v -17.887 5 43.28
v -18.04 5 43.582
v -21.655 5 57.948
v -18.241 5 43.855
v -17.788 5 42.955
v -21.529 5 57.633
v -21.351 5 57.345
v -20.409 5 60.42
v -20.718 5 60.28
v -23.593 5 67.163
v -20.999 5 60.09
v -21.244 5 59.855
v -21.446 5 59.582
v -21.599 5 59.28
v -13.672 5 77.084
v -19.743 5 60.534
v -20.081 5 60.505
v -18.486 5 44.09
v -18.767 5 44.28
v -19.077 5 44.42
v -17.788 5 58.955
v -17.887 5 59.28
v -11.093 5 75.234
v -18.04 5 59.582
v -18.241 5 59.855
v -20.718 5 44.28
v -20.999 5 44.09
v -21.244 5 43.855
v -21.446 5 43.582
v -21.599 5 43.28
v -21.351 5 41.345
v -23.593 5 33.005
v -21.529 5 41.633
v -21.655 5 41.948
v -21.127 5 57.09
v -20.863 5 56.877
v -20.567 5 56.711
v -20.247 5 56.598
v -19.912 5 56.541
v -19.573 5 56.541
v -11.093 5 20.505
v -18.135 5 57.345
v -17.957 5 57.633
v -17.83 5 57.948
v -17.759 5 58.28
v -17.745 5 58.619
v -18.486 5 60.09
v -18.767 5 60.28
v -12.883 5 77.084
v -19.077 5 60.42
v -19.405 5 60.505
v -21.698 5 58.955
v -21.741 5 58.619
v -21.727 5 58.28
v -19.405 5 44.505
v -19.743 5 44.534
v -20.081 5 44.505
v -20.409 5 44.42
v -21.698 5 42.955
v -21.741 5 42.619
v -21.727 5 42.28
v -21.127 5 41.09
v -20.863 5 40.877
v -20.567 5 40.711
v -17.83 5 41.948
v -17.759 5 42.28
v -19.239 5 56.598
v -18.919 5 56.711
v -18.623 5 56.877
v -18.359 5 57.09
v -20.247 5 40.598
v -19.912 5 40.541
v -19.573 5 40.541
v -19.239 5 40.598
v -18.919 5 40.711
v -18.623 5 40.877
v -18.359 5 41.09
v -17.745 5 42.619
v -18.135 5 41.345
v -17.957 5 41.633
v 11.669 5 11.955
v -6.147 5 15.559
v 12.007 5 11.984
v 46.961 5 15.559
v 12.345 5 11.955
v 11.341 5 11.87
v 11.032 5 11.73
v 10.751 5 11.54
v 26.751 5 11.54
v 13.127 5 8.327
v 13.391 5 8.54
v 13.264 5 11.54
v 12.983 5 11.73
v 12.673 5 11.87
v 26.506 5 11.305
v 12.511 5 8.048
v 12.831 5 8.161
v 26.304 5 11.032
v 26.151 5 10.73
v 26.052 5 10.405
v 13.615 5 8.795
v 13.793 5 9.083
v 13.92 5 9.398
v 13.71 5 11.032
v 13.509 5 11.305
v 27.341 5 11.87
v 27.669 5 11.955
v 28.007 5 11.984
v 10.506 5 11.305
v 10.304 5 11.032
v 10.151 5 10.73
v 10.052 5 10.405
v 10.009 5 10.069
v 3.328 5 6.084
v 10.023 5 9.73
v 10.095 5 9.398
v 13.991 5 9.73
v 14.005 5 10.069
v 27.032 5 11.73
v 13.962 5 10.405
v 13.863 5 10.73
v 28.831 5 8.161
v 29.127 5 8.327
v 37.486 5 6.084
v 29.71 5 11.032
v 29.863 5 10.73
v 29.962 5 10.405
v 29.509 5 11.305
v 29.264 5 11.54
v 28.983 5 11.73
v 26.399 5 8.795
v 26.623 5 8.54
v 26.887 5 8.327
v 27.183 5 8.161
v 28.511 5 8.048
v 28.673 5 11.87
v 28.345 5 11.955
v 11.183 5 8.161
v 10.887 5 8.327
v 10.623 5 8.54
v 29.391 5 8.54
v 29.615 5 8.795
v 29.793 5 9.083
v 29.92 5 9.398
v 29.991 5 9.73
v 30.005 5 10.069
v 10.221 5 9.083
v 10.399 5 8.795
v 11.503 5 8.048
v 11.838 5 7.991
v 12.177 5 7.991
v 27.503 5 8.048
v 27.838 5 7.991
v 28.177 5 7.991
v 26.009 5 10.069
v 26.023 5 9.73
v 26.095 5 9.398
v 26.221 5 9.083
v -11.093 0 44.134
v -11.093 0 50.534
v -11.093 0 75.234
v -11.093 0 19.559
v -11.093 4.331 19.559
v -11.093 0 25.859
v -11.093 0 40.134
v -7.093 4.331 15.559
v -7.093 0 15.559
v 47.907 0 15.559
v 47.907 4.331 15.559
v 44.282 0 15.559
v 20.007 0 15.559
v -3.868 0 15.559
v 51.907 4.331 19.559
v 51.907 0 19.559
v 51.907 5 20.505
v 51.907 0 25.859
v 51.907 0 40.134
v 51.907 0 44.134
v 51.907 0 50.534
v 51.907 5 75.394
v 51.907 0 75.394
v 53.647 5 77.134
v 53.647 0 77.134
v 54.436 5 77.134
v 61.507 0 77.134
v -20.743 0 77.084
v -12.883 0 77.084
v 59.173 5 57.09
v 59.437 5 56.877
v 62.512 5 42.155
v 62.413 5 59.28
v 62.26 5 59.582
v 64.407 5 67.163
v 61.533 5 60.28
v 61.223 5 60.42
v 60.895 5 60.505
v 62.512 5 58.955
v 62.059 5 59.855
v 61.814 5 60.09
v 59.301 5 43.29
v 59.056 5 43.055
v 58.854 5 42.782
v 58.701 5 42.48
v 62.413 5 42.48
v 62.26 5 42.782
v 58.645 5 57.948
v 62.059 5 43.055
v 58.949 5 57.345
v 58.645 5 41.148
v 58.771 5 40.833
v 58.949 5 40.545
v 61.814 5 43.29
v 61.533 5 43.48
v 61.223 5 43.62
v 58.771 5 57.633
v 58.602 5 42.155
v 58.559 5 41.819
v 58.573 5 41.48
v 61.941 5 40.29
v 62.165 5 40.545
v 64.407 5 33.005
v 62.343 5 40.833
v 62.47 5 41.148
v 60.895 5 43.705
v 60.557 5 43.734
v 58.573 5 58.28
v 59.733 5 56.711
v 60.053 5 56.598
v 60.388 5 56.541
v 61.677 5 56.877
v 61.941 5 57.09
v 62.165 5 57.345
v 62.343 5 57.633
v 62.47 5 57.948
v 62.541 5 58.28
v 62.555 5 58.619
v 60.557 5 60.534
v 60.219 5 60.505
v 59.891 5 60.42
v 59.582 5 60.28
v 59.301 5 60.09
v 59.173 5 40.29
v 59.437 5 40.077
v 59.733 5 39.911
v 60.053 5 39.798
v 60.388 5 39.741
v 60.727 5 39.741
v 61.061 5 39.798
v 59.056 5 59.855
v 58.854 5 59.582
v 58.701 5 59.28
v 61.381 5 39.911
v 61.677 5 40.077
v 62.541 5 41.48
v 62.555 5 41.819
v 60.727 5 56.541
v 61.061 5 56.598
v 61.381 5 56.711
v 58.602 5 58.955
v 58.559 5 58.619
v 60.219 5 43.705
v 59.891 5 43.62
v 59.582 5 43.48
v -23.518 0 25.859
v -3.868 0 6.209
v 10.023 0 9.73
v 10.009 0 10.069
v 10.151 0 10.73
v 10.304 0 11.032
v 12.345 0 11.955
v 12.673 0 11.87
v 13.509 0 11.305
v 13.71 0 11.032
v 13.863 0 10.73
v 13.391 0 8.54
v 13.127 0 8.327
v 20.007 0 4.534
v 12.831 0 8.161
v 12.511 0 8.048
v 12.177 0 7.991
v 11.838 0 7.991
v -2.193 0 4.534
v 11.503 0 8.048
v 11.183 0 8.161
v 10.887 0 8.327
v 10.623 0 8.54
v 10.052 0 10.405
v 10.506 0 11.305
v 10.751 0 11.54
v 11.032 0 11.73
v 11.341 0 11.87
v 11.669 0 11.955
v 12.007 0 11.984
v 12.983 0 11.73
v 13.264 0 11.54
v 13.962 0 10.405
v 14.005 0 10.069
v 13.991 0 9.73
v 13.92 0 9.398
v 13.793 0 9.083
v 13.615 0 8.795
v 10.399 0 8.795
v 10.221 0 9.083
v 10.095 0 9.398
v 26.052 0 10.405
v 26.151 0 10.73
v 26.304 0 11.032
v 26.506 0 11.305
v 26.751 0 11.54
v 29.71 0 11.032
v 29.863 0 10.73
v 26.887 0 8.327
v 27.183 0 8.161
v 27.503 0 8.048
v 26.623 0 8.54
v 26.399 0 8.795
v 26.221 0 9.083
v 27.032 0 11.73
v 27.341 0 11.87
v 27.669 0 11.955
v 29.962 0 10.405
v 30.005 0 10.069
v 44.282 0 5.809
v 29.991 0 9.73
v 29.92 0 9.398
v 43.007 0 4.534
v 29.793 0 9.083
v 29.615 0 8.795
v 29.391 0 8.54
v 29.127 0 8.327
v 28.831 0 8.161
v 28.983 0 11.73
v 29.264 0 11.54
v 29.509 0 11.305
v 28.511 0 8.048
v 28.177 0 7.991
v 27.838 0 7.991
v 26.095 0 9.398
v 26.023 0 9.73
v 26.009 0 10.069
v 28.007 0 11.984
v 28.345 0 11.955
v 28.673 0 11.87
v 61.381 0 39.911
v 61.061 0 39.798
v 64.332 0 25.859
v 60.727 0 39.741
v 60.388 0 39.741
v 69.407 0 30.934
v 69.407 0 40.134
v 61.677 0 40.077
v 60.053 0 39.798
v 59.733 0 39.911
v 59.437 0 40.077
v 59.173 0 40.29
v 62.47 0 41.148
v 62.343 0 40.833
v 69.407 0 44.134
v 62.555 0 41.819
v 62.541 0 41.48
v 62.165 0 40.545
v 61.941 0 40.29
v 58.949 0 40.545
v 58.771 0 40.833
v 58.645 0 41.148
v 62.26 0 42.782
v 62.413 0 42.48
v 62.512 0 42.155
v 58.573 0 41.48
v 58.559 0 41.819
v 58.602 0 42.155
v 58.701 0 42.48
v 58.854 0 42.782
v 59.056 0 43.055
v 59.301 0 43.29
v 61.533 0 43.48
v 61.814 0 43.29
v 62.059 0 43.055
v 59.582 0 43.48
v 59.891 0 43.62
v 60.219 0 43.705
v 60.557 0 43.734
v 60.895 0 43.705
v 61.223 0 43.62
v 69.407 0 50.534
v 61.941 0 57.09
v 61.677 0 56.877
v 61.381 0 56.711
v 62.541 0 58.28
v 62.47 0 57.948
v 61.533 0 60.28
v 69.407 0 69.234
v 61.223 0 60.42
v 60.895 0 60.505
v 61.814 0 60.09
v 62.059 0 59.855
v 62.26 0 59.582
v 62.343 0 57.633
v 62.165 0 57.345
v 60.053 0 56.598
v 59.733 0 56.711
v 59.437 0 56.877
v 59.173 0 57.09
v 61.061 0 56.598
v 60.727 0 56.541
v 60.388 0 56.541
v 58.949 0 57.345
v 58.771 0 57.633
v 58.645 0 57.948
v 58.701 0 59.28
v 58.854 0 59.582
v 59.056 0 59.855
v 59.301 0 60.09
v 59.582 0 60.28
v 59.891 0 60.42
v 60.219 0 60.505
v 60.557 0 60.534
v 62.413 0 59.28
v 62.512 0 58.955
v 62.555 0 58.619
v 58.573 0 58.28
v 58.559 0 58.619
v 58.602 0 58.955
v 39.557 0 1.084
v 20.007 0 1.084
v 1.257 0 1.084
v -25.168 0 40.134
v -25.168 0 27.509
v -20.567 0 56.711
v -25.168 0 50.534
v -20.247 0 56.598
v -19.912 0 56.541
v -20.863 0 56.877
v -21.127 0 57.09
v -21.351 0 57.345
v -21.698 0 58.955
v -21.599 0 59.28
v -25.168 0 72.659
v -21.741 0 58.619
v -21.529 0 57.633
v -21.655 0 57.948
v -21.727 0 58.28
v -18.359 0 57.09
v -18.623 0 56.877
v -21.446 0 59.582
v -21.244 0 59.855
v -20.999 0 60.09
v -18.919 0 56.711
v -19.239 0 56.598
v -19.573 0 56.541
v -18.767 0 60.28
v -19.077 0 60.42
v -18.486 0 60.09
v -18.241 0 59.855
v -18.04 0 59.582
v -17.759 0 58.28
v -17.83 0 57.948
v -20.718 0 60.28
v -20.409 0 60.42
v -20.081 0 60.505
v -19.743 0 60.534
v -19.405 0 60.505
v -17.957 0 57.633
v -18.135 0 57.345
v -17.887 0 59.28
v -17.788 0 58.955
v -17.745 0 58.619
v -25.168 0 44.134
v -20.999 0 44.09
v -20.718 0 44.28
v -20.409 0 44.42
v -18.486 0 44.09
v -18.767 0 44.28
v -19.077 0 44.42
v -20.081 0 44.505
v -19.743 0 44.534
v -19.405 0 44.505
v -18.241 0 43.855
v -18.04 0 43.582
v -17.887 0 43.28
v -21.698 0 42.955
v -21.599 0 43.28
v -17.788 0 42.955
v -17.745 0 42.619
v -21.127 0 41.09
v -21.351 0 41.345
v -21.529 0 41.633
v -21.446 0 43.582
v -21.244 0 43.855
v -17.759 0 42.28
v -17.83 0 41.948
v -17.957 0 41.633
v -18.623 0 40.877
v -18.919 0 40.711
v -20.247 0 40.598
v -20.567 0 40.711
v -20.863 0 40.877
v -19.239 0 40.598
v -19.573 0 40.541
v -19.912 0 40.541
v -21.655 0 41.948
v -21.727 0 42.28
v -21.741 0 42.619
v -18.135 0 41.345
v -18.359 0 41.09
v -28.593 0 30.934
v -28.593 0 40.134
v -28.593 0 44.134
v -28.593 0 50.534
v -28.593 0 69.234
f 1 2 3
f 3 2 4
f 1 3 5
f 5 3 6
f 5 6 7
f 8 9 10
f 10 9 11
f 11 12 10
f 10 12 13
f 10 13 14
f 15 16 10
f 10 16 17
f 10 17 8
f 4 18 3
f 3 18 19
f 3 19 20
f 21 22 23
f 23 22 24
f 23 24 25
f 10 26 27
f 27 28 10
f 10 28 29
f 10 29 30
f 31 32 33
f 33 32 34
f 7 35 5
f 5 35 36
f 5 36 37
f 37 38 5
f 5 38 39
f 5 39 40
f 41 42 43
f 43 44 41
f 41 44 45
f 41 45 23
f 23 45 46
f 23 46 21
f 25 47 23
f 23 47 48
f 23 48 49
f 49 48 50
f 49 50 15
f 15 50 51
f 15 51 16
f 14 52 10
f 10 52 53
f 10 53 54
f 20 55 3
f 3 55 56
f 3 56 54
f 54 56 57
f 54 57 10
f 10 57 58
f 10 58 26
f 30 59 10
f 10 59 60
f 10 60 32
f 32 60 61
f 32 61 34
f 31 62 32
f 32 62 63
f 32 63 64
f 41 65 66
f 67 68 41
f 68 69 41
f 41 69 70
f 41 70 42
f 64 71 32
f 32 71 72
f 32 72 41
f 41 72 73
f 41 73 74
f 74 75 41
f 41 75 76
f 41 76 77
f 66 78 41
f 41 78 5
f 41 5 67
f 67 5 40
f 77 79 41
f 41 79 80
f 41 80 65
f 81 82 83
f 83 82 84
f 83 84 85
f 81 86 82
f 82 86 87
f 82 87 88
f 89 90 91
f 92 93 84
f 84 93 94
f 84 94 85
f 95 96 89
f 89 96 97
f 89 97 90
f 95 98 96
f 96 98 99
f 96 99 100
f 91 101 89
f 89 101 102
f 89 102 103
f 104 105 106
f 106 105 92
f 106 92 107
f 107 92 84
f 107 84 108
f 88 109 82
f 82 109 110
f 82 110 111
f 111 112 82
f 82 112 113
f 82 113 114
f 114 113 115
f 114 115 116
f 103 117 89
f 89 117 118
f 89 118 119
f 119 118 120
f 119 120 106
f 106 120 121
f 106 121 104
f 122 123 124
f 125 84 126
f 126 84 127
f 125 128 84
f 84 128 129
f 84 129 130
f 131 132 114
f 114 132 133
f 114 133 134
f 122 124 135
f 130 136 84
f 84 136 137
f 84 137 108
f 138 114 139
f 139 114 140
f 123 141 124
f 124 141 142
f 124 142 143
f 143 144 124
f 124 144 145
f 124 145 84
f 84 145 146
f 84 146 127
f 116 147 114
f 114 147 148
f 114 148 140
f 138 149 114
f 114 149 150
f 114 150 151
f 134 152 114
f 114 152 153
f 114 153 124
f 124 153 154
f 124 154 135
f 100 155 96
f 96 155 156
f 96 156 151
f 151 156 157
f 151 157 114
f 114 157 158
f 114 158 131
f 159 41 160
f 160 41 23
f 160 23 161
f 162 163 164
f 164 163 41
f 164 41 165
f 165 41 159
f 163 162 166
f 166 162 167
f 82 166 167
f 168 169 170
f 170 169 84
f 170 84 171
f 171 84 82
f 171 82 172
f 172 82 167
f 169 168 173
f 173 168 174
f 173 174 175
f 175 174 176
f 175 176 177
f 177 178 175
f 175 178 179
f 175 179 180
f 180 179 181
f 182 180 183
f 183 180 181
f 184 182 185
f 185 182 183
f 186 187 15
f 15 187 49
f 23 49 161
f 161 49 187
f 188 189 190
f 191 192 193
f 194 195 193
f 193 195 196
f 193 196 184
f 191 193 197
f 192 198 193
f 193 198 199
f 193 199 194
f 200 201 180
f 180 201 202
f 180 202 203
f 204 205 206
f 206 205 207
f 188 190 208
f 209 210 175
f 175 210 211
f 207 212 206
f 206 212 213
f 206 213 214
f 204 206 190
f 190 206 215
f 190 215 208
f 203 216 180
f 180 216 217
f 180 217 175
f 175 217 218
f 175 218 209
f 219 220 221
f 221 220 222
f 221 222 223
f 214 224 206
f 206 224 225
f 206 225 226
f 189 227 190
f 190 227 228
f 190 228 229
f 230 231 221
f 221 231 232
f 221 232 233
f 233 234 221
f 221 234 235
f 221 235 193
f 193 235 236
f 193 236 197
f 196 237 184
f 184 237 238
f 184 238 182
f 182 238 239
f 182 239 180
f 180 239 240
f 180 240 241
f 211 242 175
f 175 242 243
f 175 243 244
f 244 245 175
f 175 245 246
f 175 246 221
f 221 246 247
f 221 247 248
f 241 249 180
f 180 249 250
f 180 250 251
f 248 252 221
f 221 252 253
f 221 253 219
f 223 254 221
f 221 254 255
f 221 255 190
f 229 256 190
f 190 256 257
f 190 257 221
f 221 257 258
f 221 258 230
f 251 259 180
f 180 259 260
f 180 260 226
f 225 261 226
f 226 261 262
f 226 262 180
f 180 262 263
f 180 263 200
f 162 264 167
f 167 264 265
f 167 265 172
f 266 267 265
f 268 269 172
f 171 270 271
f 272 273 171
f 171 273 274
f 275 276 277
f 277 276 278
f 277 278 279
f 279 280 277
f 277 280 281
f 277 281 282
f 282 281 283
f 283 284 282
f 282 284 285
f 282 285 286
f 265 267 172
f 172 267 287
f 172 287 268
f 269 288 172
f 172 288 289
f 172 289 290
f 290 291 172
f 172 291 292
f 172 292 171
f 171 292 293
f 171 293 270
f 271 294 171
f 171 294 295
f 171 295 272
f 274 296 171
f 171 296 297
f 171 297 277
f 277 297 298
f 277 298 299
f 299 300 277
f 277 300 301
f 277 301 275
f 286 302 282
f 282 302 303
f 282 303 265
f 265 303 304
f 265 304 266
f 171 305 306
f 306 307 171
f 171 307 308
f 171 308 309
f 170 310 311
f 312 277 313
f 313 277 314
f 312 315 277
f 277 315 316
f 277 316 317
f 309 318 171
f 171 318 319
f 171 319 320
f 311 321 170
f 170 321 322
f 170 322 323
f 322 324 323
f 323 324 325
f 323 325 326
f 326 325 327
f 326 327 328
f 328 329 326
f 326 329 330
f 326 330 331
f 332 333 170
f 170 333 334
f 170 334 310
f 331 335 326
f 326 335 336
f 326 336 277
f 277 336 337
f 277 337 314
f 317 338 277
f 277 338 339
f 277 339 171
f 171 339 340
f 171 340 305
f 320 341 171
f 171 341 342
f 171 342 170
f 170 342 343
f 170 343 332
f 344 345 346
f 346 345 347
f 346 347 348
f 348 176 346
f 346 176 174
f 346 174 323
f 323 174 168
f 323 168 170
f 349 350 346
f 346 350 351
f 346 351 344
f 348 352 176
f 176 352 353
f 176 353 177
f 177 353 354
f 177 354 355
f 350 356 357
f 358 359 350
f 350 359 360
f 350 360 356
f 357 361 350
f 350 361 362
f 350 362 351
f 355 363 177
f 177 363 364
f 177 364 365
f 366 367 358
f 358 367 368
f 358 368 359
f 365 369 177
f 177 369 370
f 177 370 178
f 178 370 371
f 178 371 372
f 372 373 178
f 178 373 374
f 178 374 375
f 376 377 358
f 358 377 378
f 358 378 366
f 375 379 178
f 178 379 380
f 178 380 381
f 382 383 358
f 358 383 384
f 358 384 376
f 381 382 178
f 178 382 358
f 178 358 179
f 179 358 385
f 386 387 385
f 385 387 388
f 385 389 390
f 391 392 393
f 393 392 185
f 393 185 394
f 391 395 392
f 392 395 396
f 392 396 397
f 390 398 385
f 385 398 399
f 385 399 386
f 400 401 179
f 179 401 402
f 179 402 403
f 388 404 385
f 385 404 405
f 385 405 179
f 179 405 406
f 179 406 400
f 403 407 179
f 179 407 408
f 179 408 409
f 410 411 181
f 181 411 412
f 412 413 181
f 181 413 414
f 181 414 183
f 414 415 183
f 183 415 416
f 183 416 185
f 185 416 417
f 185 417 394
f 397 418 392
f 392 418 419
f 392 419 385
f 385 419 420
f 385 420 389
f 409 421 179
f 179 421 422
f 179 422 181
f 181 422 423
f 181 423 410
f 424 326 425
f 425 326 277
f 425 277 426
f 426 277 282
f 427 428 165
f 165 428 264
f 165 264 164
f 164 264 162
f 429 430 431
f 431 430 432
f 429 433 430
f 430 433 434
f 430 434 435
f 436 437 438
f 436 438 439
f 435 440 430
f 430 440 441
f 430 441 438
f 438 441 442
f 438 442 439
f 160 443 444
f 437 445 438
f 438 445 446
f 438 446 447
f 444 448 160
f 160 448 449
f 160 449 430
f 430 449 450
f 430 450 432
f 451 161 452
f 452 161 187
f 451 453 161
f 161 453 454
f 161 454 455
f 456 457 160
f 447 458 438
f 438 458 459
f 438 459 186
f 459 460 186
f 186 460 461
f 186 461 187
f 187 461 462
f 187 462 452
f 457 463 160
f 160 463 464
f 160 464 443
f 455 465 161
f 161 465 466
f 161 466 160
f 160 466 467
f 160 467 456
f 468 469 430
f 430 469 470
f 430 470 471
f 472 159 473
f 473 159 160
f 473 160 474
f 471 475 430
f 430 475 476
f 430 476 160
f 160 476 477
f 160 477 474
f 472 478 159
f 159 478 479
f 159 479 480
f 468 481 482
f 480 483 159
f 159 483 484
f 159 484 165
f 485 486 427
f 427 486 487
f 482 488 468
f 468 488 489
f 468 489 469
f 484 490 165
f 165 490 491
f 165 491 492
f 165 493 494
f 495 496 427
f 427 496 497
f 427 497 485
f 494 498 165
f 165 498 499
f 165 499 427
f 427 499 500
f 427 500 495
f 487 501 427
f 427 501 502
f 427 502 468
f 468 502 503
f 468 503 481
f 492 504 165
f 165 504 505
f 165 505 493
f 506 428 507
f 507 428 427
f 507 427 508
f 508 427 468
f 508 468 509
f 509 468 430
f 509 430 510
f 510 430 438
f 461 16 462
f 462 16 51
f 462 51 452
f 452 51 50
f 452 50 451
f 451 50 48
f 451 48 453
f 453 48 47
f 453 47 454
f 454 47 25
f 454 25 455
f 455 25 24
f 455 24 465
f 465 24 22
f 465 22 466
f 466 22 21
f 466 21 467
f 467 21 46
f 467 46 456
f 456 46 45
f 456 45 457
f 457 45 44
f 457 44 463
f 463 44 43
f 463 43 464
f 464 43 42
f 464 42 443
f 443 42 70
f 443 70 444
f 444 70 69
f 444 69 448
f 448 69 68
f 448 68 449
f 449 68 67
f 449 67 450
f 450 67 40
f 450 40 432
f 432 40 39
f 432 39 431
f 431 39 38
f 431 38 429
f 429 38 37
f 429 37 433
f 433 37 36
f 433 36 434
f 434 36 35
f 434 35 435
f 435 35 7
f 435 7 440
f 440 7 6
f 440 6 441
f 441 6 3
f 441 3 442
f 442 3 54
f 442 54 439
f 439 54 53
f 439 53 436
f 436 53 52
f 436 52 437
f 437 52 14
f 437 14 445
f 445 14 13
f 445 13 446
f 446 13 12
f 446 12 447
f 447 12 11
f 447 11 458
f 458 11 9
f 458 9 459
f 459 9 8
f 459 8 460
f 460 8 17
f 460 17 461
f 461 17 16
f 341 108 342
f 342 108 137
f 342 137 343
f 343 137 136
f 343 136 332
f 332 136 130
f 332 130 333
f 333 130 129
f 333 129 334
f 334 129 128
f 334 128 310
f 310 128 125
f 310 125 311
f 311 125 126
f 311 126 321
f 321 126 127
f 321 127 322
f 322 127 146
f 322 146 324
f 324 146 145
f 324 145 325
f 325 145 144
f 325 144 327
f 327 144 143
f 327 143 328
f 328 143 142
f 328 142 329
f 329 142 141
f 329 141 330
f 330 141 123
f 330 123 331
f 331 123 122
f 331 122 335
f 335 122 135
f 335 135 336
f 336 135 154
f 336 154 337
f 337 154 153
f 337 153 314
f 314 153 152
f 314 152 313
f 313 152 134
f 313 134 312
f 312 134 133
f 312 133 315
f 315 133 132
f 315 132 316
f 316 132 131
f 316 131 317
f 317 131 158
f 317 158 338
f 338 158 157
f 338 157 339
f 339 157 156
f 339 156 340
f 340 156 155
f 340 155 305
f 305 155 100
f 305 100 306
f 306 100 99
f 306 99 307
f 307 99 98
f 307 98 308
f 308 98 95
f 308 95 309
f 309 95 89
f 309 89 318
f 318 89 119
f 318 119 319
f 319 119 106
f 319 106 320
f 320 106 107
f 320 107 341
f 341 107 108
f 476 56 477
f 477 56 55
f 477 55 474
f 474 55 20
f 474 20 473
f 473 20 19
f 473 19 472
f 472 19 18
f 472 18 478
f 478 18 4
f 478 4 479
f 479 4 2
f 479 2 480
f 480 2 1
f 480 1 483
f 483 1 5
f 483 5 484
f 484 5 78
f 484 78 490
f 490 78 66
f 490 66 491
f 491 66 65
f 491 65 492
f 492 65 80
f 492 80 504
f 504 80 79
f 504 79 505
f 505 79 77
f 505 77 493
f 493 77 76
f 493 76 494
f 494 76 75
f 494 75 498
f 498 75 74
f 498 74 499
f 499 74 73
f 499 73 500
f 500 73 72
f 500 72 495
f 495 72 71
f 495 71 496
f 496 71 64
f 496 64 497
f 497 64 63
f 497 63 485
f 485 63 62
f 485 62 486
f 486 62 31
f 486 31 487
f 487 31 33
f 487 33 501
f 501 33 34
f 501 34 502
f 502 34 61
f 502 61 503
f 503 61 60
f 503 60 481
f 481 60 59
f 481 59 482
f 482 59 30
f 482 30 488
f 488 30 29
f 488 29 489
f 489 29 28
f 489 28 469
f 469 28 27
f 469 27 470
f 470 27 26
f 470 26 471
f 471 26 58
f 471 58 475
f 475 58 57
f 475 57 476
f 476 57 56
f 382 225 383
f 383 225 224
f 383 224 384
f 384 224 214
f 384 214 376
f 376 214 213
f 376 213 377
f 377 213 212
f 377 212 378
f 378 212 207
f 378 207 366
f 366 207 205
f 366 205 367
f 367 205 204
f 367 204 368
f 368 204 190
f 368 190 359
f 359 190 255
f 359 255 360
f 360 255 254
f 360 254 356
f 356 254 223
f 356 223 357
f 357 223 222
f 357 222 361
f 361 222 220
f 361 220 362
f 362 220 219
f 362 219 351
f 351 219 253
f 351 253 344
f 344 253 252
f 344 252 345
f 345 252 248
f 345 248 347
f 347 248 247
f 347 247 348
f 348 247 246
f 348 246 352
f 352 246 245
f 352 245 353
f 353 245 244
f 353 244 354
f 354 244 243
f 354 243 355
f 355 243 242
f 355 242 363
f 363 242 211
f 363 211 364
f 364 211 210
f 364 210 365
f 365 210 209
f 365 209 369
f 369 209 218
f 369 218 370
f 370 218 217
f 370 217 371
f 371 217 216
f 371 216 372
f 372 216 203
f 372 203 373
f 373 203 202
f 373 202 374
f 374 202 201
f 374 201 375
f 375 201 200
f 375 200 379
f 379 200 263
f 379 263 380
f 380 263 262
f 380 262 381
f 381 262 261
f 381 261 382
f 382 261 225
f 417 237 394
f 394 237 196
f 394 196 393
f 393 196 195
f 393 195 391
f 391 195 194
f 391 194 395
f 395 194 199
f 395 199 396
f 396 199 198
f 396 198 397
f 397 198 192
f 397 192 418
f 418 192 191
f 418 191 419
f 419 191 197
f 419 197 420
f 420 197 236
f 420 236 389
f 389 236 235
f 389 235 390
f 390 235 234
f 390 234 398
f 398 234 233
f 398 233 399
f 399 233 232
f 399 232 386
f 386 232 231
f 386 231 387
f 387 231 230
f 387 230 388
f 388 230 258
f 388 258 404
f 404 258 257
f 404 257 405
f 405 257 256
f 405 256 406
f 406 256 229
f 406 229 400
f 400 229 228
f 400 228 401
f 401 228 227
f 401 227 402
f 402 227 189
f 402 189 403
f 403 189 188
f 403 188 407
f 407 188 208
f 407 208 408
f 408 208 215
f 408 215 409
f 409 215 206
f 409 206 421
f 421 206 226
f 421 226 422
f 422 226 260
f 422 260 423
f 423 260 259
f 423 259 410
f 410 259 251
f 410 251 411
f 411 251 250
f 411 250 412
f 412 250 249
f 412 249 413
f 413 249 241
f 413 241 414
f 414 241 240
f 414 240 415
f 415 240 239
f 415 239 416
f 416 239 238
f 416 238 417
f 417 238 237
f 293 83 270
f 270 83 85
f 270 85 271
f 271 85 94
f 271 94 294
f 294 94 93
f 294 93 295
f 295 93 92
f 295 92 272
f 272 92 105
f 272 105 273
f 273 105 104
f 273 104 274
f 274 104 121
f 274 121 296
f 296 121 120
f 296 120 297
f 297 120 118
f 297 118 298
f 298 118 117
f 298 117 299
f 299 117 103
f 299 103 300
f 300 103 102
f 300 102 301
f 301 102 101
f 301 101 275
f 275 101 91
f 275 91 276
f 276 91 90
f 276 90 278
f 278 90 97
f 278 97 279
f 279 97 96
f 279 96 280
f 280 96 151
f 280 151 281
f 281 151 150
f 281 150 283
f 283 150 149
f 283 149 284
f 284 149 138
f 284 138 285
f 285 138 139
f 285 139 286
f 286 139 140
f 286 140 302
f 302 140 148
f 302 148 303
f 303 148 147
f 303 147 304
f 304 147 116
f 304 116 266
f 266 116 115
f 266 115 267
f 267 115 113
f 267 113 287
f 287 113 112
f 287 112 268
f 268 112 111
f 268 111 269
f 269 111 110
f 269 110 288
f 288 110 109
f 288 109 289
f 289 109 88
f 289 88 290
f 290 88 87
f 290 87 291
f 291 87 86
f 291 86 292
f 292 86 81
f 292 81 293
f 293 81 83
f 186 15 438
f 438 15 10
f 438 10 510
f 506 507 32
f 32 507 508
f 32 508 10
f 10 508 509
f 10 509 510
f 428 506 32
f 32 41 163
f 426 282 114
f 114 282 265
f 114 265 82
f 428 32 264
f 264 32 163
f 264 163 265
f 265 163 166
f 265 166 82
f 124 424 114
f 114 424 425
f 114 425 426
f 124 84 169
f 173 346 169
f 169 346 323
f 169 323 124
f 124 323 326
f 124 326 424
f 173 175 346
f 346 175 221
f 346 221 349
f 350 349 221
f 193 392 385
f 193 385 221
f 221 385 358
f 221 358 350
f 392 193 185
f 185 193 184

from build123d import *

# Parameters (mm, degrees)
BOSS_EXTRUDE1_DEPTH = 5
SKETCH4_R           = 2
CUT_EXTRUDE1_DEPTH  = 5
CHAMFER1_SIZE       = 5


with BuildPart() as part:
    # Sketch3 → Boss-Extrude1 (new body)
    with BuildSketch(Plane(origin=(0, 0, 0), x_dir=(1, 0, 0), z_dir=(0, 1, 0))):
        Polygon((-11.092806328, -75.233836931), (-12.882806328, -77.083836936), (-20.742806328, -77.083836936), (-28.592806328, -69.233836936), (-28.592806328, -30.933836936), (-20.742806328, -23.083836936), (-6.592793915, -8.933824523), (1.257206085, -1.083824523), (39.557206085, -1.083824523), (47.407206085, -8.933824523), (69.407218499, -30.933836936), (69.407218499, -69.233836936), (61.507218499, -77.133836936), (53.647218499, -77.133836936), (51.907218499, -75.393836936), (51.907218499, -19.55903866), (47.907218499, -15.55903866), (-7.092806328, -15.55903866), (-11.092806328, -19.55903866), align=None)
    extrude(amount=BOSS_EXTRUDE1_DEPTH)

    # Sketch4 → Cut-Extrude1 (cut)
    with BuildSketch(Plane(origin=(0, 5, 0), x_dir=(1, 0, 0), z_dir=(0, 1, 0))):
        with Locations(Location((-19.742793915, -58.533836936, 0), (0, 0, 270))):
            Circle(SKETCH4_R)
        with Locations(Location((-19.742793915, -42.533836936, 0), (0, 0, 270))):
            Circle(SKETCH4_R)
        with Locations(Location((60.557206085, -41.733836936, 0), (0, 0, 270))):
            Circle(SKETCH4_R)
        with Locations(Location((60.557206085, -58.533836936, 0), (0, 0, 270))):
            Circle(SKETCH4_R)
        with Locations(Location((12.007206085, -9.983836936, 0), (0, 0, 270))):
            Circle(SKETCH4_R)
        with Locations(Location((28.007206085, -9.983836936, 0), (0, 0, 270))):
            Circle(SKETCH4_R)
    extrude(amount=-CUT_EXTRUDE1_DEPTH, mode=Mode.SUBTRACT)

    # Chamfer1
    # the kernel refuses this chamfer: 5 mm, written as the material it takes off along each edge
    with BuildSketch(Plane(origin=(78.499490898, 5, 60.141564537), x_dir=(-0.7068394360706721, 0.027495876610586303, -0.7068394360706748), z_dir=(-0.7071067811865488, 0, 0.7071067811865462))) as chamfer1_piece_1:
        Polygon((CHAMFER1_SIZE * 0.999621916911, CHAMFER1_SIZE * 0.0274958766106), (-CHAMFER1_SIZE * 0.0274958766106, CHAMFER1_SIZE * 0.999621916911), (0, 0), align=None)
    extrude(amount=36.889117022, mode=Mode.SUBTRACT)
    with BuildSketch(Plane(origin=(-11.650533929, 5, 86.176109335), x_dir=(0.7068394360706736, 0.027495876610586337, -0.7068394360706732), z_dir=(-0.7071067811865474, 0, -0.7071067811865477))) as chamfer1_piece_2:
        Polygon((CHAMFER1_SIZE * 0.999621916911, CHAMFER1_SIZE * 0.0274958766106), (-CHAMFER1_SIZE * 0.0274958766106, CHAMFER1_SIZE * 0.999621916911), (0, 0), align=None)
    extrude(amount=36.818406344, mode=Mode.SUBTRACT)
    with BuildSketch(Plane(origin=(-28.592806328, 5, 82.092251876), x_dir=(0.9996219169112968, 0.027495876610586317, 0), z_dir=(0, 0, -1)), Plane(origin=(-11.601208855, 5, 1.083824523), x_dir=(3.4424184920964096e-15, 0.027495876610586317, 0.9996219169112968), z_dir=(1, 0, 0)), Plane(origin=(69.407218499, 5, 18.075421996), x_dir=(-0.9996219169112968, 0.027495876610586282, 0), z_dir=(0, 0, 1))) as chamfer1_piece_3:
        Polygon((CHAMFER1_SIZE * 0.999621916911, CHAMFER1_SIZE * 0.0274958766106), (-CHAMFER1_SIZE * 0.0274958766106, CHAMFER1_SIZE * 0.999621916911), (0, 0), align=None)
    extrude(amount=64.01682988, mode=Mode.SUBTRACT)
    with BuildSketch(Plane(origin=(-37.685078728, 5, 40.026109335), x_dir=(0.7068394360706731, 0.027495876610586303, 0.7068394360706738), z_dir=(0.7071067811865479, 0, -0.7071067811865474)), Plane(origin=(30.464933686, 5, -8.008447877), x_dir=(-0.7068394360706771, 0.027495876610586313, 0.70683943607067), z_dir=(0.707106781186544, 0, 0.707106781186551))) as chamfer1_piece_4:
        Polygon((CHAMFER1_SIZE * 0.999621916911, CHAMFER1_SIZE * 0.0274958766106), (-CHAMFER1_SIZE * 0.0274958766106, CHAMFER1_SIZE * 0.999621916911), (0, 0), align=None)
    extrude(amount=67.931122272, mode=Mode.SUBTRACT)


solid = part.part
